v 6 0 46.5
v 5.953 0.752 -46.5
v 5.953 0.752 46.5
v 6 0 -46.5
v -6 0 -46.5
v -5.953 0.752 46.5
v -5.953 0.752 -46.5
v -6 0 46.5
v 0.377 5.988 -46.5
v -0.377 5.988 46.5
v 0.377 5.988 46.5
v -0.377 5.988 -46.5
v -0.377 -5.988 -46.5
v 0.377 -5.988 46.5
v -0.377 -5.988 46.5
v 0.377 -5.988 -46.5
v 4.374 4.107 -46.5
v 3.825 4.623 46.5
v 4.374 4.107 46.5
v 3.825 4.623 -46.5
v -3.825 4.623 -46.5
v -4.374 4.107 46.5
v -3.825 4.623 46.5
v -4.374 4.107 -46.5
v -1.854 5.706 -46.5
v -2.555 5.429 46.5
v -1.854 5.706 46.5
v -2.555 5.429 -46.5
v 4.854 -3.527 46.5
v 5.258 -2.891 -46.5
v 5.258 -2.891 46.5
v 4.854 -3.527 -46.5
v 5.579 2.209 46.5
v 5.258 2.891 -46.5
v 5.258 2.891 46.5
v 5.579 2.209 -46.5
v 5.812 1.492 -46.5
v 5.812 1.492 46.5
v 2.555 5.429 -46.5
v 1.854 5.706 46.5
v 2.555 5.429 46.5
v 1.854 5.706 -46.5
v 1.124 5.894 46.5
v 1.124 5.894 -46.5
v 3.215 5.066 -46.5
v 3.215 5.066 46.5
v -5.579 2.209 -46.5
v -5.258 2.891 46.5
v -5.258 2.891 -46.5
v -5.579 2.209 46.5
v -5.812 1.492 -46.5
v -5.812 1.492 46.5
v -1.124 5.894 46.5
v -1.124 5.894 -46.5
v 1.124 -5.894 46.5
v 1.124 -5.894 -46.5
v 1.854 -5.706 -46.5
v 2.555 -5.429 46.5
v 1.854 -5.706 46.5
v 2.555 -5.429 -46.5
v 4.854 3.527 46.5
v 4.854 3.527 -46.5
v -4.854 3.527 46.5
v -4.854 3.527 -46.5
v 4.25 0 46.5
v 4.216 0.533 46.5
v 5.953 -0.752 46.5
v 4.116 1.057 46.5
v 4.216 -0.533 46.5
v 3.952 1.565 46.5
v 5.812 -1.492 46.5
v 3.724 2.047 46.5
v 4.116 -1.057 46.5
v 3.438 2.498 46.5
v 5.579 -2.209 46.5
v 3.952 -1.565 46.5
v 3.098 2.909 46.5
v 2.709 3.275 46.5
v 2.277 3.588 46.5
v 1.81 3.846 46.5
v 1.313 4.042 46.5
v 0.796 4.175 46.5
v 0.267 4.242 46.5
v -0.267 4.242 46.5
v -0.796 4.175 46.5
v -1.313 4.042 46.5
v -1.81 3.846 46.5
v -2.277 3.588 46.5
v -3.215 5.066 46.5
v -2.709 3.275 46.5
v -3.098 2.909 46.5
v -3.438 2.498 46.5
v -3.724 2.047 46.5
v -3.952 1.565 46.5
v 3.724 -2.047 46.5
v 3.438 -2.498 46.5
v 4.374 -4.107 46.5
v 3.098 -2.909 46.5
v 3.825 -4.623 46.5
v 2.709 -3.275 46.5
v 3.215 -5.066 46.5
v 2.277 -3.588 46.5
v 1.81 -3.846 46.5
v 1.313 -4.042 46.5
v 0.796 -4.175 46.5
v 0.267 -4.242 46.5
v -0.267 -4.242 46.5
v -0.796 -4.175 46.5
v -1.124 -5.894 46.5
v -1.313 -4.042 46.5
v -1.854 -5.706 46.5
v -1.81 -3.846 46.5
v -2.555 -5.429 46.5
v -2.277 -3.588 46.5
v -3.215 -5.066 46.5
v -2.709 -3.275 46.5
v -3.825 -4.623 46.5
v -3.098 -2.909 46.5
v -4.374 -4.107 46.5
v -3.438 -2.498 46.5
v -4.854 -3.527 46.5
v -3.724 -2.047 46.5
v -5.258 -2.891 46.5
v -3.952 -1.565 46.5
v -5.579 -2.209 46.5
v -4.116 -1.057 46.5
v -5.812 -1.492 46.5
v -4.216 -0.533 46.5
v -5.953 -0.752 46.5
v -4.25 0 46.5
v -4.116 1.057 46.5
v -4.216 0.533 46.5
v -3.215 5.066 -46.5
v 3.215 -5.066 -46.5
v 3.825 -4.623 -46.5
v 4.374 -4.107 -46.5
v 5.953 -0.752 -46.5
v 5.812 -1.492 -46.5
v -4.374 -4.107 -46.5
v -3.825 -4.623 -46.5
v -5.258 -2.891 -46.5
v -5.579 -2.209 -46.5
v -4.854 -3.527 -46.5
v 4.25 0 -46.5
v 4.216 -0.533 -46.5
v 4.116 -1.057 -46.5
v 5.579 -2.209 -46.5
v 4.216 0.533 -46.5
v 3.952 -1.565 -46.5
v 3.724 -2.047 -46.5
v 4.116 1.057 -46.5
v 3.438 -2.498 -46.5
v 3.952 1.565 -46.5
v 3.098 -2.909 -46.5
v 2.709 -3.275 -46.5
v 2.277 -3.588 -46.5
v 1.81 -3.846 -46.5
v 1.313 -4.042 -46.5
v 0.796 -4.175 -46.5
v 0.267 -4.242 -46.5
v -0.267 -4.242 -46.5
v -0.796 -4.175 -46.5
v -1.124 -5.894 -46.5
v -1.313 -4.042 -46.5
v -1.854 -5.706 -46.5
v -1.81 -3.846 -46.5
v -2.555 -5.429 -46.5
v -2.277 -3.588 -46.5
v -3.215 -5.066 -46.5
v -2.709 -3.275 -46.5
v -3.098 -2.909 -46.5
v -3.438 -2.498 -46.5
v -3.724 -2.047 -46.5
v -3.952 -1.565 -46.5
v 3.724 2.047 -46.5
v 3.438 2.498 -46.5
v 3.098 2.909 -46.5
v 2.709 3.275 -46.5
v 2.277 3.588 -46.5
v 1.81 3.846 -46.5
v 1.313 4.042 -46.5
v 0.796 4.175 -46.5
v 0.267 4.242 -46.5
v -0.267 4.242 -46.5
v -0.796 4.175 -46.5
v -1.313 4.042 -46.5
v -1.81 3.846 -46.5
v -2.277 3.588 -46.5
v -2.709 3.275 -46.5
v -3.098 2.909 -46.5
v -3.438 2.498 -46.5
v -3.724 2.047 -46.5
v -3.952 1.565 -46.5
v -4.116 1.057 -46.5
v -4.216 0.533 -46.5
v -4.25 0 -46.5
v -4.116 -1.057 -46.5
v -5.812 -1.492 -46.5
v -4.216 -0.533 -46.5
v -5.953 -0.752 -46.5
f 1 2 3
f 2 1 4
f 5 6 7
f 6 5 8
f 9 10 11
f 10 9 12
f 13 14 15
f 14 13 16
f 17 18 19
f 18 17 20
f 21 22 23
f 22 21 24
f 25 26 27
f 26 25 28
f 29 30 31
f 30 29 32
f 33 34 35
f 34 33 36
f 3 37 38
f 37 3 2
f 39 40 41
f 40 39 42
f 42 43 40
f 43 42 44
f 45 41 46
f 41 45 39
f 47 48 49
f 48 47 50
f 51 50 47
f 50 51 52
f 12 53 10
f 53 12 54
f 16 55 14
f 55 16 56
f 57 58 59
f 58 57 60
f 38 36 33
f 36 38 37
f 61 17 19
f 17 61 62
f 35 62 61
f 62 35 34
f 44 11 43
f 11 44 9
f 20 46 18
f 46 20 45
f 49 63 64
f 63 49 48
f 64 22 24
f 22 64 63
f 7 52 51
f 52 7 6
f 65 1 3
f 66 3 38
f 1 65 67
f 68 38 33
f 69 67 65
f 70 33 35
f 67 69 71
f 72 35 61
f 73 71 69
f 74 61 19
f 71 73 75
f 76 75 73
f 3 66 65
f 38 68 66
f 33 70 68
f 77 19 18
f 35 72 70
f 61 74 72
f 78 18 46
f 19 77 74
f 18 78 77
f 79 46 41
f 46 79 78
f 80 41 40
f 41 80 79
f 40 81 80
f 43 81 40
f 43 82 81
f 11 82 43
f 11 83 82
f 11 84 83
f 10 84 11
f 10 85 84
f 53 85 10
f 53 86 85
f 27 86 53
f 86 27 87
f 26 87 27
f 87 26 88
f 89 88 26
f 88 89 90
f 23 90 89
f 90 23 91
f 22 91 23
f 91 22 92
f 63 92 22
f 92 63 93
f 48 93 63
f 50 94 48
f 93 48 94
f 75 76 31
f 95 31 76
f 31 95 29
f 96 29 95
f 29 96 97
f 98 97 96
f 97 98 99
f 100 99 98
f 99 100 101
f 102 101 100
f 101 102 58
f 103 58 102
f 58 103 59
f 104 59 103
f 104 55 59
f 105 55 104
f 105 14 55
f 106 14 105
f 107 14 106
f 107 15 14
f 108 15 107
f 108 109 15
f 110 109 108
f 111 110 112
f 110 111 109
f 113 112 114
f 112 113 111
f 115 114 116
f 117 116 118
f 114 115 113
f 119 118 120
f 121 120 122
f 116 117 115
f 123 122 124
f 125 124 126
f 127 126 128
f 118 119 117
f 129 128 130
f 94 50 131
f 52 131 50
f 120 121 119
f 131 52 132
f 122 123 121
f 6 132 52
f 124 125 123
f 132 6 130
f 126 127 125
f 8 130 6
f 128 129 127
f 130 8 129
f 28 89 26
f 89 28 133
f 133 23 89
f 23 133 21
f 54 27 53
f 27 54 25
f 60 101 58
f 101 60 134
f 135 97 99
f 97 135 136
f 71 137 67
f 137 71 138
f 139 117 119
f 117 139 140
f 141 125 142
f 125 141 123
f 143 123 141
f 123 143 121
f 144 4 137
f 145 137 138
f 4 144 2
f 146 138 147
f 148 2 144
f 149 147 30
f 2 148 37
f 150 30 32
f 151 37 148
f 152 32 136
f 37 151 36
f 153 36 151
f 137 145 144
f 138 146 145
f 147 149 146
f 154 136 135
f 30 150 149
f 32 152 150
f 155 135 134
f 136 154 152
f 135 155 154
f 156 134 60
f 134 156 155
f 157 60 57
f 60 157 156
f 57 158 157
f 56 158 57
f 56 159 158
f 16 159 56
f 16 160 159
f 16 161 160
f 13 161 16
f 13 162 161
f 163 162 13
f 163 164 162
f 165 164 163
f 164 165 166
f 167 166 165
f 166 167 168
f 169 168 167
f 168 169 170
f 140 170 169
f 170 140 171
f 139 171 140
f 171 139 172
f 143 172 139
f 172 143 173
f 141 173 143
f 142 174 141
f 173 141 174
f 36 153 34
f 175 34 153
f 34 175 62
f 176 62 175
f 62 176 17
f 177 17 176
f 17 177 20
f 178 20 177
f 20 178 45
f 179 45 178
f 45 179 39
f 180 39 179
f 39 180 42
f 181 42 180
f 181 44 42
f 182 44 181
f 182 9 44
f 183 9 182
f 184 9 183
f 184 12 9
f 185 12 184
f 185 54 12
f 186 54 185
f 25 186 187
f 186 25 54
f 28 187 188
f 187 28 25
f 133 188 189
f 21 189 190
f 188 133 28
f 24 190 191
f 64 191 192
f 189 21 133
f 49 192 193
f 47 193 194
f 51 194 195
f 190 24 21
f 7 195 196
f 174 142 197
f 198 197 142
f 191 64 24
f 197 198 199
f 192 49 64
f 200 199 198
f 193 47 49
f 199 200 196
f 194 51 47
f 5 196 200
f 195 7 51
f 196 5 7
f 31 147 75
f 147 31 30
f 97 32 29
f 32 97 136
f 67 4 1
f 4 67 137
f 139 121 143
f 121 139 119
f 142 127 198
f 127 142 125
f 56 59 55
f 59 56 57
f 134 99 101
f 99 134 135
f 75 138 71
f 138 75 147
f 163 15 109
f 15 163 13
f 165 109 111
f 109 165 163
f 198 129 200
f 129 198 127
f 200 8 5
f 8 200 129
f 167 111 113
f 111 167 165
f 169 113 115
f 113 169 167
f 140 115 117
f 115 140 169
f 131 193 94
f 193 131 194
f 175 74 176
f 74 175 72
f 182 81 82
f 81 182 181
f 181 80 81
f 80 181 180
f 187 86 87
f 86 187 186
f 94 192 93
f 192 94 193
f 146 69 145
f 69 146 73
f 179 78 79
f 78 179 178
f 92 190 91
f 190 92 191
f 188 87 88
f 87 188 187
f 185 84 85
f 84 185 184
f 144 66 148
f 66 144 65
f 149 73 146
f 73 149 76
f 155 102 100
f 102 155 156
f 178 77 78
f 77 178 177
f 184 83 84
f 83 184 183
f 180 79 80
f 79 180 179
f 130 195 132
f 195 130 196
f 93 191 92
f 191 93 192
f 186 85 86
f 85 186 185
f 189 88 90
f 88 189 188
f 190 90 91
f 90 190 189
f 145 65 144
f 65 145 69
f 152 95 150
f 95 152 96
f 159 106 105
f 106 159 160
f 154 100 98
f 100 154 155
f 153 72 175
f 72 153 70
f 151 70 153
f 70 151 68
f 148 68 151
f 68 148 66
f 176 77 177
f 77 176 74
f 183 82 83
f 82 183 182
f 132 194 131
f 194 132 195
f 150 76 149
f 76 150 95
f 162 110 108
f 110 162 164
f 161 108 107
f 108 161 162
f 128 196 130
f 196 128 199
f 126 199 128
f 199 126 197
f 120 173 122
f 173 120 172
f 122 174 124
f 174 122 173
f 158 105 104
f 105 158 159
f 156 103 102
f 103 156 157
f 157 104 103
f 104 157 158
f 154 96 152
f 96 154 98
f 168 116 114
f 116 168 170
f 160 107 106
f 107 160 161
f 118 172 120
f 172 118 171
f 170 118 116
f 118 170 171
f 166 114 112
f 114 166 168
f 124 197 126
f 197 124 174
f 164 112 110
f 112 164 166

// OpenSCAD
$fn = 50;


difference() {
	union() {
		translate(v = [0, 0, -46.5000000000]) {
			cylinder(h = 93, r = 6.0000000000);
		}
	}
	union() {
		translate(v = [0, 0, -100.0000000000]) {
			cylinder(h = 200, r = 4.2500000000);
		}
	}
}
